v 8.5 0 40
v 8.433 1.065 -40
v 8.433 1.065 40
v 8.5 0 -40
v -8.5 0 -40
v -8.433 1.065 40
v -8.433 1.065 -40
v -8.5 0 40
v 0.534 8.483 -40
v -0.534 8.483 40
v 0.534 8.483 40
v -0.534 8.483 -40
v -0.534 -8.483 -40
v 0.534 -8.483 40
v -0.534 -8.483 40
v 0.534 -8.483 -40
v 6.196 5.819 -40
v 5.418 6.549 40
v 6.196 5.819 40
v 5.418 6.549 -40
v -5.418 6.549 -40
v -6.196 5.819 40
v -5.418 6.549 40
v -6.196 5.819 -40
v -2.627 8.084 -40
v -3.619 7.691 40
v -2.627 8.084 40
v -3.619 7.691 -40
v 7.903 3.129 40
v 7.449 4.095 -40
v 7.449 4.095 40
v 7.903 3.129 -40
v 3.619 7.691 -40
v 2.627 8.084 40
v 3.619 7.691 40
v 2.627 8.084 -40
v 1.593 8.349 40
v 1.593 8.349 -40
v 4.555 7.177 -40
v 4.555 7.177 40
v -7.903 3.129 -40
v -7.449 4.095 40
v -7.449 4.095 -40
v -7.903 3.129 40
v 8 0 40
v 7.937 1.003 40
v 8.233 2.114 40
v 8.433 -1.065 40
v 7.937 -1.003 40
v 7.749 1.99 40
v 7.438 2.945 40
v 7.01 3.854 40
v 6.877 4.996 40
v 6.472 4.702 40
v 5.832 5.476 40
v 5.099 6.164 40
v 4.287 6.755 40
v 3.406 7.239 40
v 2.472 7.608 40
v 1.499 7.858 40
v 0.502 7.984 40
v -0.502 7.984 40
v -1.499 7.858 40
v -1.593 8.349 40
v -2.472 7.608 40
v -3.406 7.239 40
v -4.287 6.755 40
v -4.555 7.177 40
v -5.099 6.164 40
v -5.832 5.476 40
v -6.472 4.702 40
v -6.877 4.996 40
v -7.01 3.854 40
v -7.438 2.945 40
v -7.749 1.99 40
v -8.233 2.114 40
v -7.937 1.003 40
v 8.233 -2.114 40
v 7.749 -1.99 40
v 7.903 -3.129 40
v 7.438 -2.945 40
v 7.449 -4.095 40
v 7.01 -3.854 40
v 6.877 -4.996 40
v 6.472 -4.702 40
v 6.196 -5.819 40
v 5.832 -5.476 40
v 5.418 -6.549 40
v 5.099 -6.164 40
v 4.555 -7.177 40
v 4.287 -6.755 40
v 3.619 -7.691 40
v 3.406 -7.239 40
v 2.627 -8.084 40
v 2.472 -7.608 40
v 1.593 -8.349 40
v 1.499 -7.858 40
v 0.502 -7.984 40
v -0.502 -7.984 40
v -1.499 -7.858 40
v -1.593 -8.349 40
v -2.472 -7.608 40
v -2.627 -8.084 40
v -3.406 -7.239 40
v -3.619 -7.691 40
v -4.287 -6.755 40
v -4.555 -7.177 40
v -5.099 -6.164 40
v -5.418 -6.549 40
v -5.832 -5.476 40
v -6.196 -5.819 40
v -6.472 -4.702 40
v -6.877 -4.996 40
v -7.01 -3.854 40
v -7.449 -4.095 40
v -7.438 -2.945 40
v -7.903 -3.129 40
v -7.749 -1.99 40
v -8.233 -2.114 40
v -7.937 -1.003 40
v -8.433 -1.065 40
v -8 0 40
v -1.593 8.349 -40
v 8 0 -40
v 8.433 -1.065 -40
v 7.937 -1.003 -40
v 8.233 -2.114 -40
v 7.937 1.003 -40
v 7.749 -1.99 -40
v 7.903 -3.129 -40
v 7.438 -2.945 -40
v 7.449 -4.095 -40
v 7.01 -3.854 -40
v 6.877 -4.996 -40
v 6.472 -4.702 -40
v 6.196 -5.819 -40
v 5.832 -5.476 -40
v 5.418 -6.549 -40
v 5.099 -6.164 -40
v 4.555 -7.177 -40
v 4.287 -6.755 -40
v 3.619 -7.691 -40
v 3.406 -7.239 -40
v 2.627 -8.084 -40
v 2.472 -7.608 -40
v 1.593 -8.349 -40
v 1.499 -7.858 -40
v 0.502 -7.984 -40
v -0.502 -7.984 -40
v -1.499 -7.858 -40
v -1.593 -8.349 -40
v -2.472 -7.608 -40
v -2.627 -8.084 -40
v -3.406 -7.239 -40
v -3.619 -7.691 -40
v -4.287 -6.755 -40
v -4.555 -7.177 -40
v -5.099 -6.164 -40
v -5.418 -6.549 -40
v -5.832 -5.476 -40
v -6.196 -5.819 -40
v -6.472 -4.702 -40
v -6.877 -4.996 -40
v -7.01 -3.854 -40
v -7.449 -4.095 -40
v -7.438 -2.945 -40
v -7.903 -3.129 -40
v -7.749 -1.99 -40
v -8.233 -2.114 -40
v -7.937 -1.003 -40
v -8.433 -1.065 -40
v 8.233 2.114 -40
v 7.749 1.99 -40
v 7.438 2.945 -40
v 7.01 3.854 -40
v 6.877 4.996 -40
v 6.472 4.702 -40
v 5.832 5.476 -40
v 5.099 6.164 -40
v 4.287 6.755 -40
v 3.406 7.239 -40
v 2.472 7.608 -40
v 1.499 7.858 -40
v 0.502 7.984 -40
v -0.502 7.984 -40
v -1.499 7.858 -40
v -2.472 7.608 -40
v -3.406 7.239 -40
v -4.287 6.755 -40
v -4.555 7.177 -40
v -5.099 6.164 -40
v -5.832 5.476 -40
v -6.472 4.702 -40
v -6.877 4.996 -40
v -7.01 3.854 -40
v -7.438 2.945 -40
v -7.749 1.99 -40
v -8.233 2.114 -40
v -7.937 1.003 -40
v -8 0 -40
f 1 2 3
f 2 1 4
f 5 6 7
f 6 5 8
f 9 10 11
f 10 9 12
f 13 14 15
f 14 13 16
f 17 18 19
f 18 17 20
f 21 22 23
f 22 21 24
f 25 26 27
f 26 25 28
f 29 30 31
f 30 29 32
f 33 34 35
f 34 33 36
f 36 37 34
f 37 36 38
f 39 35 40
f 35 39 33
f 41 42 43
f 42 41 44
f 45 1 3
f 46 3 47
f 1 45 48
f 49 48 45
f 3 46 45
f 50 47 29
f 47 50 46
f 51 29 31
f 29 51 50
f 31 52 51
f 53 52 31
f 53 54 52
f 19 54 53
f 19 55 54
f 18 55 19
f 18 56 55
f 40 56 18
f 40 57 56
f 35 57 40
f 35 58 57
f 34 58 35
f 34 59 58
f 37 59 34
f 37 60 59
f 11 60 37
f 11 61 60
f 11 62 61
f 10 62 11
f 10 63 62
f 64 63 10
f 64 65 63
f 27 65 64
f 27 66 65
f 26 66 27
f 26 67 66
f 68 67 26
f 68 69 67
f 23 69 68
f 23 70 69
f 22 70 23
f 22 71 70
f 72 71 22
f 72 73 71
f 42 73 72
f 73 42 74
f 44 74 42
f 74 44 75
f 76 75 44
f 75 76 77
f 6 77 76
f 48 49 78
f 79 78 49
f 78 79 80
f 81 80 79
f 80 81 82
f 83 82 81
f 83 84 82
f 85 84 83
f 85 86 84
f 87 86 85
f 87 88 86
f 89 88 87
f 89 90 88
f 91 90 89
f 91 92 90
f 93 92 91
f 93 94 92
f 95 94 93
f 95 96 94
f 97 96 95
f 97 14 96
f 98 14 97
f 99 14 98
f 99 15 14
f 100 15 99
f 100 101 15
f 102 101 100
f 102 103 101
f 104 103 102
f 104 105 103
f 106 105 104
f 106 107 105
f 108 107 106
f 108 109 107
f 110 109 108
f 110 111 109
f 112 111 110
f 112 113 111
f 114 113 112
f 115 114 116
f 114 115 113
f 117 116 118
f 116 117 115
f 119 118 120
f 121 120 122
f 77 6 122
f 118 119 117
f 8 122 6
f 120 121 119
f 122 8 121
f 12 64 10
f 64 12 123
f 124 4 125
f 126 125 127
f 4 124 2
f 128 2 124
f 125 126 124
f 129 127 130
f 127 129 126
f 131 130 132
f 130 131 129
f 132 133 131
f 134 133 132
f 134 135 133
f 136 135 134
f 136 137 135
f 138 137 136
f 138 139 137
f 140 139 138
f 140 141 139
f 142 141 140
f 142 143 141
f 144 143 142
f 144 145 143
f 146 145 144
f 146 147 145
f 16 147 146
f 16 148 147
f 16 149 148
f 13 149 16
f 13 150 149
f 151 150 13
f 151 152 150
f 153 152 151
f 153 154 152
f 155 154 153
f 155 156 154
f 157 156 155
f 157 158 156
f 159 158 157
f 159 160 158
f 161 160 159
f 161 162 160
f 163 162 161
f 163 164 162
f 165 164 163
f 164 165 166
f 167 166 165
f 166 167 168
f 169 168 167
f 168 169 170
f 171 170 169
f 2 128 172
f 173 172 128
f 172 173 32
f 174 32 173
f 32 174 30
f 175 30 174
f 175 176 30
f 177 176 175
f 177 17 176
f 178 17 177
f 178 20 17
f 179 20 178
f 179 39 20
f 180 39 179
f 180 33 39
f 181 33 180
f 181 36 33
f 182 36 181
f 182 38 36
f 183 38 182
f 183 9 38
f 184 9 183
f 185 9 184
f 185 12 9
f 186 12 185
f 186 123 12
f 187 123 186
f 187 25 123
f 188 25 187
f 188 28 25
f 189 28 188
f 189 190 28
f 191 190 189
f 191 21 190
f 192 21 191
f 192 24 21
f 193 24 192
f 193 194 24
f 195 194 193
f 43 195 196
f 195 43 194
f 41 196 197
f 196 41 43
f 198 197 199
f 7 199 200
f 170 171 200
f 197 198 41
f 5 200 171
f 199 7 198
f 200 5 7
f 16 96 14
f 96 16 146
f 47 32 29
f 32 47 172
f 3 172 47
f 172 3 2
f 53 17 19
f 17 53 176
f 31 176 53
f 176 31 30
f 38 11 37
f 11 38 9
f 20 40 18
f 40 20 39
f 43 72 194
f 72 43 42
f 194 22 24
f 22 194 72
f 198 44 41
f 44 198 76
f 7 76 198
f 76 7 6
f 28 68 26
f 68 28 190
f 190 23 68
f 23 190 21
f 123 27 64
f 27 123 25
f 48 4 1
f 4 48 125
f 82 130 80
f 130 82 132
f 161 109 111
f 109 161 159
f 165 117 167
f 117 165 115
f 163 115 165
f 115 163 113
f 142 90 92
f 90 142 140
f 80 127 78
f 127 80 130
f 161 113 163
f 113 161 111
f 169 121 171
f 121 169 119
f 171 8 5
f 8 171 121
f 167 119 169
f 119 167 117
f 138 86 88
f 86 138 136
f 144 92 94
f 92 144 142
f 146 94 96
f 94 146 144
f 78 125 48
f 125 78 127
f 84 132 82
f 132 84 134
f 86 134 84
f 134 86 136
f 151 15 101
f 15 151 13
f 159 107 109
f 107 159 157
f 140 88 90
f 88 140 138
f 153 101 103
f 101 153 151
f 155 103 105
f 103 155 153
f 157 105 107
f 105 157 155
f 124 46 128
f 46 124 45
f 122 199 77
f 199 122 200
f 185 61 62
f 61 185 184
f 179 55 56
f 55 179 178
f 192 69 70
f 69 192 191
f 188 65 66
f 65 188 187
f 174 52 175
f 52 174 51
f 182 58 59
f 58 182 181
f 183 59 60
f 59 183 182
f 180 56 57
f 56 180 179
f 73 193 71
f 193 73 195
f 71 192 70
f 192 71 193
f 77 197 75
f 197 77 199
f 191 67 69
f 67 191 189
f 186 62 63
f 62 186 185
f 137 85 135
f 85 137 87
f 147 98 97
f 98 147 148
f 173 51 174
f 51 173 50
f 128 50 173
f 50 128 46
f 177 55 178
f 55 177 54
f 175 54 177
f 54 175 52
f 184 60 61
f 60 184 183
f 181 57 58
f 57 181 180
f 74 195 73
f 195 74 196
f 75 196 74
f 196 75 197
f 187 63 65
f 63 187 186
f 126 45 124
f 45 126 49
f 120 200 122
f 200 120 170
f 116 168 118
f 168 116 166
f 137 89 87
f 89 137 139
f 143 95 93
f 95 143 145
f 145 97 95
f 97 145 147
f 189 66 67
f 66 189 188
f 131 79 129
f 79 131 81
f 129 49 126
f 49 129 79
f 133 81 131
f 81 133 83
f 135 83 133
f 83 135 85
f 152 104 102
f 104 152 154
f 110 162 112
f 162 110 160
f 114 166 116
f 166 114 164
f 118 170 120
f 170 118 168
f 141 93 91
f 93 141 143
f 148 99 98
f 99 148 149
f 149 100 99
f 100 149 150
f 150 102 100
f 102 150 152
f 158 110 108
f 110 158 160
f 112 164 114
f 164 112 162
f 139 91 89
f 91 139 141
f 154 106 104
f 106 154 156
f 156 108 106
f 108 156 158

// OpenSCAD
$fn = 50;


difference() {
	union() {
		translate(v = [0, 0, -40.0000000000]) {
			cylinder(h = 80, r = 8.5000000000);
		}
	}
	union() {
		translate(v = [0, 0, -100.0000000000]) {
			cylinder(h = 200, r = 8);
		}
	}
}
